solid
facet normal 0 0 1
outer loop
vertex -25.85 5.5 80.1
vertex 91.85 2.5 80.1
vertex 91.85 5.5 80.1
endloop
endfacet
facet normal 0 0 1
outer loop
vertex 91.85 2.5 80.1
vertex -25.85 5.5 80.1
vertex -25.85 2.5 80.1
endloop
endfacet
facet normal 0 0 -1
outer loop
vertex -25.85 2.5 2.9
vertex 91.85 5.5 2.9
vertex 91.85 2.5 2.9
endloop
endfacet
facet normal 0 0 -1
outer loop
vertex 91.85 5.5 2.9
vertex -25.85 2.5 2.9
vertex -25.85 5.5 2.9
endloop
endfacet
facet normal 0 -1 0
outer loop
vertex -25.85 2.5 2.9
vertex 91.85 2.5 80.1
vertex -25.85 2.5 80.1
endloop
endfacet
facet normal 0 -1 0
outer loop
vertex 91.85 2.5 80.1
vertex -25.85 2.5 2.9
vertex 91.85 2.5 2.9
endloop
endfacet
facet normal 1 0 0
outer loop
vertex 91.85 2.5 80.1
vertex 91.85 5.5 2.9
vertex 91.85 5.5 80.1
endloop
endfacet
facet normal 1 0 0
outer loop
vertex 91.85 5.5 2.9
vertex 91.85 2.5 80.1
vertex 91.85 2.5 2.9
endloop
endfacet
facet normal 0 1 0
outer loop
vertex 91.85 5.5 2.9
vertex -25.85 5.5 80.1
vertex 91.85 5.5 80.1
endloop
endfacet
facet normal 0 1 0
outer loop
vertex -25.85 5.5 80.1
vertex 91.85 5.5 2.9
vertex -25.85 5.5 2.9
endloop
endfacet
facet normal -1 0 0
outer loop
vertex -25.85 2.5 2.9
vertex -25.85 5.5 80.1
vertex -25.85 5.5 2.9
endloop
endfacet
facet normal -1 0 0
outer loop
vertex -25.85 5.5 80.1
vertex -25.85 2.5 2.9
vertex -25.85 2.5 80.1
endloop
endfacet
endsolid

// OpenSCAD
// file: D:/Projects/assembly-workshop/outputs/Screen_Pi_Hue_SCR5-H8_2026-10-31/checks/geometry.scad
// SCR5-G; mm; FRONT view: X right, Z up, Y into rack. Glass/plate front Y=0.
// Measured values: work/screen-5in/Dimensions.md. Physical fit/strength UNKNOWN.
part="plate";
DROP=0.45; // coupon winner can be substituted here; all three pins use this DROP
LIP=0.8; LIP_ON=true;
LIP_EDGES=[true,true,false,false]; // left,right,bottom,top; Brian: side lips only, cosmetic
FRAME_STEP=1.5; // measured glass-edge inset to metal LCD frame, left/right only
SHIM=0; // moves rear frame seat and plate-boss mating face back
$fn=48;
GCX=33; GCZ=41.5; PW=252; PH=88.8; PT=4;
GW=120.7; GH=77.2; CLEAR=0.2; WW=GW+2*CLEAR; WH=GH+2*CLEAR;
SEAT=13.3+SHIM; FT=3;
SO=[56.45,34]; BTN_X=[45.5,35.5,25.5];
PCB_TOP=38; GAP=0.10; LEAF_T=0.8;
HOLE=[3.4,40.3,44.7];
BX=[GCX-68,GCX+68]; BZ=[10,72];
// DSI connector X extent is unmeasured: conservative assumed 8 mm inward from PCB edge.
DSI=[GCX-60.5,9.1,GCZ-38+30,8,5.25,21];
module xz(y,d){translate([0,y+d,0])rotate([90,0,0])linear_extrude(d)children();}
// rr/rack_slots copied from SCR5-F; same exact slot centres, outline shifted -0.05 Z to centre 44.4.
module rr(w,h,r){hull()for(x=[-w/2+r,w/2-r],z=[-h/2+r,h/2-r])translate([x,z])circle(r=r);}
module rack_slots(){for(x=[-118.2625,118.2625],z=[6.323,38.127,50.773,82.577])translate([x,z])hull()for(dx=[-1.5,1.5])translate([dx,0])circle(d=7);}
module cyl_y(x,y,z,d,h){translate([x,y,z])rotate([-90,0,0])cylinder(d=d,h=h);}
module window_cut(){
  xz(-0.02,4.04)translate([GCX,GCZ])square([WW,WH],center=true);
  // 0.3 x 45-degree chamfer, square corners, front only.
  translate([GCX,0.3,GCZ])rotate([90,0,0])
    linear_extrude(height=0.3,scale=[(WW+0.6)/WW,(WH+0.6)/WH])square([WW,WH],center=true);
}
module lips(){
  // Cosmetic side ledges only; rear frame/standoffs set depth and retain the screen.
  if(LIP_ON)for(i=[0:3])if(LIP_EDGES[i]){
    if(i<2)translate([GCX+(i==0?-WW/2:WW/2-LIP),2.5,GCZ-GH/2+4])cube([LIP,0.8,GH-8]);
    else translate([GCX-GW/2+4,2.5,GCZ+(i==2?-WH/2:WH/2-LIP)])cube([GW-8,0.8,LIP]);
  }
}
// Leaf/nub/bump geometry copied from SCR5-WP-A, translated to this glass centre.
module leaves(){for(x=BTN_X)translate([GCX+x-1.5,0,GCZ]){
  translate([0,0,PCB_TOP+GAP+0.9+0.1])cube([3,11.8,LEAF_T]);
  translate([0,10.2,PCB_TOP+GAP])cube([3,1.4,1.0+LEAF_T/2]);
  translate([0,10.4,PCB_TOP+GAP+1.0+LEAF_T])cube([3,1.0,0.9]);
}}
module plate(){difference(){union(){
  difference(){xz(0,PT)translate([0,PH/2])rr(PW,PH,2.5);window_cut();}
  for(x=BX,z=BZ)cyl_y(x,3.9,z,8,SEAT-3.9);
  leaves(); lips();
 }
 xz(-0.02,4.04)rack_slots();
 for(x=BTN_X)translate([GCX+x-HOLE[0]/2,-0.02,GCZ+HOLE[1]])cube([HOLE[0],SEAT+FT+0.04,HOLE[2]-HOLE[1]]);
 // Printed-in screw pilots (no heat-set OD assumption): nominal M2.5, fit UNKNOWN.
 for(x=BX,z=BZ)cyl_y(x,SEAT-6,z,2.1,6.02);
 // Rear engraving, 0.5 deep, left field.
 xz(3.5,0.52)translate([-75,40])mirror([1,0])text("SCR5-G",size=6,halign="center",font="Liberation Sans:style=Bold");
}}
module frame_blank(){
  // C-shaped perimeter; no material across the board centre / touch FPC.
  xz(SEAT,FT)translate([GCX,GCZ])difference(){square([132,76],center=true);square([116,60],center=true);}
  for(sx=[-1,1],sz=[-1,1])cyl_y(GCX+sx*SO[0],SEAT,GCZ+sz*SO[1],9,FT);
  for(x=BX,z=BZ)hull(){cyl_y(x,SEAT,z,8,FT);cyl_y(GCX+(x<GCX?-62:62),SEAT,z,8,FT);}
}
module dsi_keepout(){translate([DSI[0]-3,DSI[1]-3,DSI[2]-3])cube([DSI[3]+6,DSI[4]+6,DSI[5]+6]);}
module ribbon_route(){
  // Open left/up corridor 18 mm wide; extends past top of plate.
  translate([GCX-84,6.1,GCZ-11])cube([18,24,65]);
  translate([GCX-84,6.1,GCZ-11])cube([32,24,27]);
}
module frame(){difference(){frame_blank();dsi_keepout();ribbon_route();
 for(sx=[-1,1],sz=[-1,1])cyl_y(GCX+sx*SO[0],SEAT-0.02,GCZ+sz*SO[1],2.8,FT+0.04);
 for(x=BX,z=BZ)cyl_y(x,SEAT-0.02,z,2.8,FT+0.04);
}}
// Pin polygon/cap/notch/dot design copied unchanged from SCR5-WP-A.
module pin(d,dots){s=2*d+0.5;difference(){union(){
 translate([-1.5,0,0])rotate([90,0,90])linear_extrude(3)polygon([
 [-s-0.02,40.5],[10.2,40.5],[10.2,41.0],[11.5,41.0],[11.5+2*d,41.0-d],[15,41.0-d],[15,44.5],[-s-0.02,44.5]]);
 translate([-2.5,-s-1.5,39.6])cube([5,1.5,5.8]);
 }for(i=[0:dots-1])translate([(i-(dots-1)/2)*1.4,-s-1.5-0.01,43.5])rotate([-90,0,0])cylinder(d=0.9,h=0.4);}}
module placed_pin(i){translate([GCX+BTN_X[i],0,GCZ])pin(DROP,i+1);}
// Measured layers: cover glass 0.9 + second glass 1.6, metal frame 3.0,
// open gap 2.0, PCB 1.6. Metal frame inset ~1.5 at LEFT/RIGHT only.
// PCB centred under glass and full metal-frame top/bottom extent remain UNKNOWN.
module glass(){translate([GCX-GW/2,0,GCZ-GH/2])cube([GW,2.5,GH]);}
module lcd(){
  translate([GCX-GW/2+FRAME_STEP,2.5,GCZ-GH/2])cube([GW-2*FRAME_STEP,3.0,GH]);
}
module pcb(){translate([GCX-60.5,7.5,GCZ-38])cube([121,1.6,76]);}
module standoffs(){for(sx=[-1,1],sz=[-1,1])difference(){cyl_y(GCX+sx*SO[0],9.1,GCZ+sz*SO[1],5.5,4.2);cyl_y(GCX+sx*SO[0],9.08,GCZ+sz*SO[1],2.5,4.24);}}
module buttons(){for(x=BTN_X){
 translate([GCX+x-3.5,9.1,GCZ+38-3.4])cube([7,3.6,2.4]);
 translate([GCX+x-1.5,9.1,GCZ+37])cube([3,3.6,1]);
}}
module dsi(){translate([DSI[0],DSI[1],DSI[2]])cube([DSI[3],DSI[4],DSI[5]]);}
module touch(){translate([GCX-10,9.1,GCZ-5])cube([20,2,10]);} // lateral extent unmeasured
module dummy(){glass();lcd();pcb();standoffs();buttons();dsi();touch();}
module assembly(){color("gray")plate();color("orange")frame();for(i=[0:2])color("cyan")placed_pin(i);color([0.2,0.3,0.4,0.4])dummy();}
// main file
include <D:/Projects/assembly-workshop/outputs/Screen_Pi_Hue_SCR5-H8_2026-10-31/checks/geometry.scad>
lcd();
